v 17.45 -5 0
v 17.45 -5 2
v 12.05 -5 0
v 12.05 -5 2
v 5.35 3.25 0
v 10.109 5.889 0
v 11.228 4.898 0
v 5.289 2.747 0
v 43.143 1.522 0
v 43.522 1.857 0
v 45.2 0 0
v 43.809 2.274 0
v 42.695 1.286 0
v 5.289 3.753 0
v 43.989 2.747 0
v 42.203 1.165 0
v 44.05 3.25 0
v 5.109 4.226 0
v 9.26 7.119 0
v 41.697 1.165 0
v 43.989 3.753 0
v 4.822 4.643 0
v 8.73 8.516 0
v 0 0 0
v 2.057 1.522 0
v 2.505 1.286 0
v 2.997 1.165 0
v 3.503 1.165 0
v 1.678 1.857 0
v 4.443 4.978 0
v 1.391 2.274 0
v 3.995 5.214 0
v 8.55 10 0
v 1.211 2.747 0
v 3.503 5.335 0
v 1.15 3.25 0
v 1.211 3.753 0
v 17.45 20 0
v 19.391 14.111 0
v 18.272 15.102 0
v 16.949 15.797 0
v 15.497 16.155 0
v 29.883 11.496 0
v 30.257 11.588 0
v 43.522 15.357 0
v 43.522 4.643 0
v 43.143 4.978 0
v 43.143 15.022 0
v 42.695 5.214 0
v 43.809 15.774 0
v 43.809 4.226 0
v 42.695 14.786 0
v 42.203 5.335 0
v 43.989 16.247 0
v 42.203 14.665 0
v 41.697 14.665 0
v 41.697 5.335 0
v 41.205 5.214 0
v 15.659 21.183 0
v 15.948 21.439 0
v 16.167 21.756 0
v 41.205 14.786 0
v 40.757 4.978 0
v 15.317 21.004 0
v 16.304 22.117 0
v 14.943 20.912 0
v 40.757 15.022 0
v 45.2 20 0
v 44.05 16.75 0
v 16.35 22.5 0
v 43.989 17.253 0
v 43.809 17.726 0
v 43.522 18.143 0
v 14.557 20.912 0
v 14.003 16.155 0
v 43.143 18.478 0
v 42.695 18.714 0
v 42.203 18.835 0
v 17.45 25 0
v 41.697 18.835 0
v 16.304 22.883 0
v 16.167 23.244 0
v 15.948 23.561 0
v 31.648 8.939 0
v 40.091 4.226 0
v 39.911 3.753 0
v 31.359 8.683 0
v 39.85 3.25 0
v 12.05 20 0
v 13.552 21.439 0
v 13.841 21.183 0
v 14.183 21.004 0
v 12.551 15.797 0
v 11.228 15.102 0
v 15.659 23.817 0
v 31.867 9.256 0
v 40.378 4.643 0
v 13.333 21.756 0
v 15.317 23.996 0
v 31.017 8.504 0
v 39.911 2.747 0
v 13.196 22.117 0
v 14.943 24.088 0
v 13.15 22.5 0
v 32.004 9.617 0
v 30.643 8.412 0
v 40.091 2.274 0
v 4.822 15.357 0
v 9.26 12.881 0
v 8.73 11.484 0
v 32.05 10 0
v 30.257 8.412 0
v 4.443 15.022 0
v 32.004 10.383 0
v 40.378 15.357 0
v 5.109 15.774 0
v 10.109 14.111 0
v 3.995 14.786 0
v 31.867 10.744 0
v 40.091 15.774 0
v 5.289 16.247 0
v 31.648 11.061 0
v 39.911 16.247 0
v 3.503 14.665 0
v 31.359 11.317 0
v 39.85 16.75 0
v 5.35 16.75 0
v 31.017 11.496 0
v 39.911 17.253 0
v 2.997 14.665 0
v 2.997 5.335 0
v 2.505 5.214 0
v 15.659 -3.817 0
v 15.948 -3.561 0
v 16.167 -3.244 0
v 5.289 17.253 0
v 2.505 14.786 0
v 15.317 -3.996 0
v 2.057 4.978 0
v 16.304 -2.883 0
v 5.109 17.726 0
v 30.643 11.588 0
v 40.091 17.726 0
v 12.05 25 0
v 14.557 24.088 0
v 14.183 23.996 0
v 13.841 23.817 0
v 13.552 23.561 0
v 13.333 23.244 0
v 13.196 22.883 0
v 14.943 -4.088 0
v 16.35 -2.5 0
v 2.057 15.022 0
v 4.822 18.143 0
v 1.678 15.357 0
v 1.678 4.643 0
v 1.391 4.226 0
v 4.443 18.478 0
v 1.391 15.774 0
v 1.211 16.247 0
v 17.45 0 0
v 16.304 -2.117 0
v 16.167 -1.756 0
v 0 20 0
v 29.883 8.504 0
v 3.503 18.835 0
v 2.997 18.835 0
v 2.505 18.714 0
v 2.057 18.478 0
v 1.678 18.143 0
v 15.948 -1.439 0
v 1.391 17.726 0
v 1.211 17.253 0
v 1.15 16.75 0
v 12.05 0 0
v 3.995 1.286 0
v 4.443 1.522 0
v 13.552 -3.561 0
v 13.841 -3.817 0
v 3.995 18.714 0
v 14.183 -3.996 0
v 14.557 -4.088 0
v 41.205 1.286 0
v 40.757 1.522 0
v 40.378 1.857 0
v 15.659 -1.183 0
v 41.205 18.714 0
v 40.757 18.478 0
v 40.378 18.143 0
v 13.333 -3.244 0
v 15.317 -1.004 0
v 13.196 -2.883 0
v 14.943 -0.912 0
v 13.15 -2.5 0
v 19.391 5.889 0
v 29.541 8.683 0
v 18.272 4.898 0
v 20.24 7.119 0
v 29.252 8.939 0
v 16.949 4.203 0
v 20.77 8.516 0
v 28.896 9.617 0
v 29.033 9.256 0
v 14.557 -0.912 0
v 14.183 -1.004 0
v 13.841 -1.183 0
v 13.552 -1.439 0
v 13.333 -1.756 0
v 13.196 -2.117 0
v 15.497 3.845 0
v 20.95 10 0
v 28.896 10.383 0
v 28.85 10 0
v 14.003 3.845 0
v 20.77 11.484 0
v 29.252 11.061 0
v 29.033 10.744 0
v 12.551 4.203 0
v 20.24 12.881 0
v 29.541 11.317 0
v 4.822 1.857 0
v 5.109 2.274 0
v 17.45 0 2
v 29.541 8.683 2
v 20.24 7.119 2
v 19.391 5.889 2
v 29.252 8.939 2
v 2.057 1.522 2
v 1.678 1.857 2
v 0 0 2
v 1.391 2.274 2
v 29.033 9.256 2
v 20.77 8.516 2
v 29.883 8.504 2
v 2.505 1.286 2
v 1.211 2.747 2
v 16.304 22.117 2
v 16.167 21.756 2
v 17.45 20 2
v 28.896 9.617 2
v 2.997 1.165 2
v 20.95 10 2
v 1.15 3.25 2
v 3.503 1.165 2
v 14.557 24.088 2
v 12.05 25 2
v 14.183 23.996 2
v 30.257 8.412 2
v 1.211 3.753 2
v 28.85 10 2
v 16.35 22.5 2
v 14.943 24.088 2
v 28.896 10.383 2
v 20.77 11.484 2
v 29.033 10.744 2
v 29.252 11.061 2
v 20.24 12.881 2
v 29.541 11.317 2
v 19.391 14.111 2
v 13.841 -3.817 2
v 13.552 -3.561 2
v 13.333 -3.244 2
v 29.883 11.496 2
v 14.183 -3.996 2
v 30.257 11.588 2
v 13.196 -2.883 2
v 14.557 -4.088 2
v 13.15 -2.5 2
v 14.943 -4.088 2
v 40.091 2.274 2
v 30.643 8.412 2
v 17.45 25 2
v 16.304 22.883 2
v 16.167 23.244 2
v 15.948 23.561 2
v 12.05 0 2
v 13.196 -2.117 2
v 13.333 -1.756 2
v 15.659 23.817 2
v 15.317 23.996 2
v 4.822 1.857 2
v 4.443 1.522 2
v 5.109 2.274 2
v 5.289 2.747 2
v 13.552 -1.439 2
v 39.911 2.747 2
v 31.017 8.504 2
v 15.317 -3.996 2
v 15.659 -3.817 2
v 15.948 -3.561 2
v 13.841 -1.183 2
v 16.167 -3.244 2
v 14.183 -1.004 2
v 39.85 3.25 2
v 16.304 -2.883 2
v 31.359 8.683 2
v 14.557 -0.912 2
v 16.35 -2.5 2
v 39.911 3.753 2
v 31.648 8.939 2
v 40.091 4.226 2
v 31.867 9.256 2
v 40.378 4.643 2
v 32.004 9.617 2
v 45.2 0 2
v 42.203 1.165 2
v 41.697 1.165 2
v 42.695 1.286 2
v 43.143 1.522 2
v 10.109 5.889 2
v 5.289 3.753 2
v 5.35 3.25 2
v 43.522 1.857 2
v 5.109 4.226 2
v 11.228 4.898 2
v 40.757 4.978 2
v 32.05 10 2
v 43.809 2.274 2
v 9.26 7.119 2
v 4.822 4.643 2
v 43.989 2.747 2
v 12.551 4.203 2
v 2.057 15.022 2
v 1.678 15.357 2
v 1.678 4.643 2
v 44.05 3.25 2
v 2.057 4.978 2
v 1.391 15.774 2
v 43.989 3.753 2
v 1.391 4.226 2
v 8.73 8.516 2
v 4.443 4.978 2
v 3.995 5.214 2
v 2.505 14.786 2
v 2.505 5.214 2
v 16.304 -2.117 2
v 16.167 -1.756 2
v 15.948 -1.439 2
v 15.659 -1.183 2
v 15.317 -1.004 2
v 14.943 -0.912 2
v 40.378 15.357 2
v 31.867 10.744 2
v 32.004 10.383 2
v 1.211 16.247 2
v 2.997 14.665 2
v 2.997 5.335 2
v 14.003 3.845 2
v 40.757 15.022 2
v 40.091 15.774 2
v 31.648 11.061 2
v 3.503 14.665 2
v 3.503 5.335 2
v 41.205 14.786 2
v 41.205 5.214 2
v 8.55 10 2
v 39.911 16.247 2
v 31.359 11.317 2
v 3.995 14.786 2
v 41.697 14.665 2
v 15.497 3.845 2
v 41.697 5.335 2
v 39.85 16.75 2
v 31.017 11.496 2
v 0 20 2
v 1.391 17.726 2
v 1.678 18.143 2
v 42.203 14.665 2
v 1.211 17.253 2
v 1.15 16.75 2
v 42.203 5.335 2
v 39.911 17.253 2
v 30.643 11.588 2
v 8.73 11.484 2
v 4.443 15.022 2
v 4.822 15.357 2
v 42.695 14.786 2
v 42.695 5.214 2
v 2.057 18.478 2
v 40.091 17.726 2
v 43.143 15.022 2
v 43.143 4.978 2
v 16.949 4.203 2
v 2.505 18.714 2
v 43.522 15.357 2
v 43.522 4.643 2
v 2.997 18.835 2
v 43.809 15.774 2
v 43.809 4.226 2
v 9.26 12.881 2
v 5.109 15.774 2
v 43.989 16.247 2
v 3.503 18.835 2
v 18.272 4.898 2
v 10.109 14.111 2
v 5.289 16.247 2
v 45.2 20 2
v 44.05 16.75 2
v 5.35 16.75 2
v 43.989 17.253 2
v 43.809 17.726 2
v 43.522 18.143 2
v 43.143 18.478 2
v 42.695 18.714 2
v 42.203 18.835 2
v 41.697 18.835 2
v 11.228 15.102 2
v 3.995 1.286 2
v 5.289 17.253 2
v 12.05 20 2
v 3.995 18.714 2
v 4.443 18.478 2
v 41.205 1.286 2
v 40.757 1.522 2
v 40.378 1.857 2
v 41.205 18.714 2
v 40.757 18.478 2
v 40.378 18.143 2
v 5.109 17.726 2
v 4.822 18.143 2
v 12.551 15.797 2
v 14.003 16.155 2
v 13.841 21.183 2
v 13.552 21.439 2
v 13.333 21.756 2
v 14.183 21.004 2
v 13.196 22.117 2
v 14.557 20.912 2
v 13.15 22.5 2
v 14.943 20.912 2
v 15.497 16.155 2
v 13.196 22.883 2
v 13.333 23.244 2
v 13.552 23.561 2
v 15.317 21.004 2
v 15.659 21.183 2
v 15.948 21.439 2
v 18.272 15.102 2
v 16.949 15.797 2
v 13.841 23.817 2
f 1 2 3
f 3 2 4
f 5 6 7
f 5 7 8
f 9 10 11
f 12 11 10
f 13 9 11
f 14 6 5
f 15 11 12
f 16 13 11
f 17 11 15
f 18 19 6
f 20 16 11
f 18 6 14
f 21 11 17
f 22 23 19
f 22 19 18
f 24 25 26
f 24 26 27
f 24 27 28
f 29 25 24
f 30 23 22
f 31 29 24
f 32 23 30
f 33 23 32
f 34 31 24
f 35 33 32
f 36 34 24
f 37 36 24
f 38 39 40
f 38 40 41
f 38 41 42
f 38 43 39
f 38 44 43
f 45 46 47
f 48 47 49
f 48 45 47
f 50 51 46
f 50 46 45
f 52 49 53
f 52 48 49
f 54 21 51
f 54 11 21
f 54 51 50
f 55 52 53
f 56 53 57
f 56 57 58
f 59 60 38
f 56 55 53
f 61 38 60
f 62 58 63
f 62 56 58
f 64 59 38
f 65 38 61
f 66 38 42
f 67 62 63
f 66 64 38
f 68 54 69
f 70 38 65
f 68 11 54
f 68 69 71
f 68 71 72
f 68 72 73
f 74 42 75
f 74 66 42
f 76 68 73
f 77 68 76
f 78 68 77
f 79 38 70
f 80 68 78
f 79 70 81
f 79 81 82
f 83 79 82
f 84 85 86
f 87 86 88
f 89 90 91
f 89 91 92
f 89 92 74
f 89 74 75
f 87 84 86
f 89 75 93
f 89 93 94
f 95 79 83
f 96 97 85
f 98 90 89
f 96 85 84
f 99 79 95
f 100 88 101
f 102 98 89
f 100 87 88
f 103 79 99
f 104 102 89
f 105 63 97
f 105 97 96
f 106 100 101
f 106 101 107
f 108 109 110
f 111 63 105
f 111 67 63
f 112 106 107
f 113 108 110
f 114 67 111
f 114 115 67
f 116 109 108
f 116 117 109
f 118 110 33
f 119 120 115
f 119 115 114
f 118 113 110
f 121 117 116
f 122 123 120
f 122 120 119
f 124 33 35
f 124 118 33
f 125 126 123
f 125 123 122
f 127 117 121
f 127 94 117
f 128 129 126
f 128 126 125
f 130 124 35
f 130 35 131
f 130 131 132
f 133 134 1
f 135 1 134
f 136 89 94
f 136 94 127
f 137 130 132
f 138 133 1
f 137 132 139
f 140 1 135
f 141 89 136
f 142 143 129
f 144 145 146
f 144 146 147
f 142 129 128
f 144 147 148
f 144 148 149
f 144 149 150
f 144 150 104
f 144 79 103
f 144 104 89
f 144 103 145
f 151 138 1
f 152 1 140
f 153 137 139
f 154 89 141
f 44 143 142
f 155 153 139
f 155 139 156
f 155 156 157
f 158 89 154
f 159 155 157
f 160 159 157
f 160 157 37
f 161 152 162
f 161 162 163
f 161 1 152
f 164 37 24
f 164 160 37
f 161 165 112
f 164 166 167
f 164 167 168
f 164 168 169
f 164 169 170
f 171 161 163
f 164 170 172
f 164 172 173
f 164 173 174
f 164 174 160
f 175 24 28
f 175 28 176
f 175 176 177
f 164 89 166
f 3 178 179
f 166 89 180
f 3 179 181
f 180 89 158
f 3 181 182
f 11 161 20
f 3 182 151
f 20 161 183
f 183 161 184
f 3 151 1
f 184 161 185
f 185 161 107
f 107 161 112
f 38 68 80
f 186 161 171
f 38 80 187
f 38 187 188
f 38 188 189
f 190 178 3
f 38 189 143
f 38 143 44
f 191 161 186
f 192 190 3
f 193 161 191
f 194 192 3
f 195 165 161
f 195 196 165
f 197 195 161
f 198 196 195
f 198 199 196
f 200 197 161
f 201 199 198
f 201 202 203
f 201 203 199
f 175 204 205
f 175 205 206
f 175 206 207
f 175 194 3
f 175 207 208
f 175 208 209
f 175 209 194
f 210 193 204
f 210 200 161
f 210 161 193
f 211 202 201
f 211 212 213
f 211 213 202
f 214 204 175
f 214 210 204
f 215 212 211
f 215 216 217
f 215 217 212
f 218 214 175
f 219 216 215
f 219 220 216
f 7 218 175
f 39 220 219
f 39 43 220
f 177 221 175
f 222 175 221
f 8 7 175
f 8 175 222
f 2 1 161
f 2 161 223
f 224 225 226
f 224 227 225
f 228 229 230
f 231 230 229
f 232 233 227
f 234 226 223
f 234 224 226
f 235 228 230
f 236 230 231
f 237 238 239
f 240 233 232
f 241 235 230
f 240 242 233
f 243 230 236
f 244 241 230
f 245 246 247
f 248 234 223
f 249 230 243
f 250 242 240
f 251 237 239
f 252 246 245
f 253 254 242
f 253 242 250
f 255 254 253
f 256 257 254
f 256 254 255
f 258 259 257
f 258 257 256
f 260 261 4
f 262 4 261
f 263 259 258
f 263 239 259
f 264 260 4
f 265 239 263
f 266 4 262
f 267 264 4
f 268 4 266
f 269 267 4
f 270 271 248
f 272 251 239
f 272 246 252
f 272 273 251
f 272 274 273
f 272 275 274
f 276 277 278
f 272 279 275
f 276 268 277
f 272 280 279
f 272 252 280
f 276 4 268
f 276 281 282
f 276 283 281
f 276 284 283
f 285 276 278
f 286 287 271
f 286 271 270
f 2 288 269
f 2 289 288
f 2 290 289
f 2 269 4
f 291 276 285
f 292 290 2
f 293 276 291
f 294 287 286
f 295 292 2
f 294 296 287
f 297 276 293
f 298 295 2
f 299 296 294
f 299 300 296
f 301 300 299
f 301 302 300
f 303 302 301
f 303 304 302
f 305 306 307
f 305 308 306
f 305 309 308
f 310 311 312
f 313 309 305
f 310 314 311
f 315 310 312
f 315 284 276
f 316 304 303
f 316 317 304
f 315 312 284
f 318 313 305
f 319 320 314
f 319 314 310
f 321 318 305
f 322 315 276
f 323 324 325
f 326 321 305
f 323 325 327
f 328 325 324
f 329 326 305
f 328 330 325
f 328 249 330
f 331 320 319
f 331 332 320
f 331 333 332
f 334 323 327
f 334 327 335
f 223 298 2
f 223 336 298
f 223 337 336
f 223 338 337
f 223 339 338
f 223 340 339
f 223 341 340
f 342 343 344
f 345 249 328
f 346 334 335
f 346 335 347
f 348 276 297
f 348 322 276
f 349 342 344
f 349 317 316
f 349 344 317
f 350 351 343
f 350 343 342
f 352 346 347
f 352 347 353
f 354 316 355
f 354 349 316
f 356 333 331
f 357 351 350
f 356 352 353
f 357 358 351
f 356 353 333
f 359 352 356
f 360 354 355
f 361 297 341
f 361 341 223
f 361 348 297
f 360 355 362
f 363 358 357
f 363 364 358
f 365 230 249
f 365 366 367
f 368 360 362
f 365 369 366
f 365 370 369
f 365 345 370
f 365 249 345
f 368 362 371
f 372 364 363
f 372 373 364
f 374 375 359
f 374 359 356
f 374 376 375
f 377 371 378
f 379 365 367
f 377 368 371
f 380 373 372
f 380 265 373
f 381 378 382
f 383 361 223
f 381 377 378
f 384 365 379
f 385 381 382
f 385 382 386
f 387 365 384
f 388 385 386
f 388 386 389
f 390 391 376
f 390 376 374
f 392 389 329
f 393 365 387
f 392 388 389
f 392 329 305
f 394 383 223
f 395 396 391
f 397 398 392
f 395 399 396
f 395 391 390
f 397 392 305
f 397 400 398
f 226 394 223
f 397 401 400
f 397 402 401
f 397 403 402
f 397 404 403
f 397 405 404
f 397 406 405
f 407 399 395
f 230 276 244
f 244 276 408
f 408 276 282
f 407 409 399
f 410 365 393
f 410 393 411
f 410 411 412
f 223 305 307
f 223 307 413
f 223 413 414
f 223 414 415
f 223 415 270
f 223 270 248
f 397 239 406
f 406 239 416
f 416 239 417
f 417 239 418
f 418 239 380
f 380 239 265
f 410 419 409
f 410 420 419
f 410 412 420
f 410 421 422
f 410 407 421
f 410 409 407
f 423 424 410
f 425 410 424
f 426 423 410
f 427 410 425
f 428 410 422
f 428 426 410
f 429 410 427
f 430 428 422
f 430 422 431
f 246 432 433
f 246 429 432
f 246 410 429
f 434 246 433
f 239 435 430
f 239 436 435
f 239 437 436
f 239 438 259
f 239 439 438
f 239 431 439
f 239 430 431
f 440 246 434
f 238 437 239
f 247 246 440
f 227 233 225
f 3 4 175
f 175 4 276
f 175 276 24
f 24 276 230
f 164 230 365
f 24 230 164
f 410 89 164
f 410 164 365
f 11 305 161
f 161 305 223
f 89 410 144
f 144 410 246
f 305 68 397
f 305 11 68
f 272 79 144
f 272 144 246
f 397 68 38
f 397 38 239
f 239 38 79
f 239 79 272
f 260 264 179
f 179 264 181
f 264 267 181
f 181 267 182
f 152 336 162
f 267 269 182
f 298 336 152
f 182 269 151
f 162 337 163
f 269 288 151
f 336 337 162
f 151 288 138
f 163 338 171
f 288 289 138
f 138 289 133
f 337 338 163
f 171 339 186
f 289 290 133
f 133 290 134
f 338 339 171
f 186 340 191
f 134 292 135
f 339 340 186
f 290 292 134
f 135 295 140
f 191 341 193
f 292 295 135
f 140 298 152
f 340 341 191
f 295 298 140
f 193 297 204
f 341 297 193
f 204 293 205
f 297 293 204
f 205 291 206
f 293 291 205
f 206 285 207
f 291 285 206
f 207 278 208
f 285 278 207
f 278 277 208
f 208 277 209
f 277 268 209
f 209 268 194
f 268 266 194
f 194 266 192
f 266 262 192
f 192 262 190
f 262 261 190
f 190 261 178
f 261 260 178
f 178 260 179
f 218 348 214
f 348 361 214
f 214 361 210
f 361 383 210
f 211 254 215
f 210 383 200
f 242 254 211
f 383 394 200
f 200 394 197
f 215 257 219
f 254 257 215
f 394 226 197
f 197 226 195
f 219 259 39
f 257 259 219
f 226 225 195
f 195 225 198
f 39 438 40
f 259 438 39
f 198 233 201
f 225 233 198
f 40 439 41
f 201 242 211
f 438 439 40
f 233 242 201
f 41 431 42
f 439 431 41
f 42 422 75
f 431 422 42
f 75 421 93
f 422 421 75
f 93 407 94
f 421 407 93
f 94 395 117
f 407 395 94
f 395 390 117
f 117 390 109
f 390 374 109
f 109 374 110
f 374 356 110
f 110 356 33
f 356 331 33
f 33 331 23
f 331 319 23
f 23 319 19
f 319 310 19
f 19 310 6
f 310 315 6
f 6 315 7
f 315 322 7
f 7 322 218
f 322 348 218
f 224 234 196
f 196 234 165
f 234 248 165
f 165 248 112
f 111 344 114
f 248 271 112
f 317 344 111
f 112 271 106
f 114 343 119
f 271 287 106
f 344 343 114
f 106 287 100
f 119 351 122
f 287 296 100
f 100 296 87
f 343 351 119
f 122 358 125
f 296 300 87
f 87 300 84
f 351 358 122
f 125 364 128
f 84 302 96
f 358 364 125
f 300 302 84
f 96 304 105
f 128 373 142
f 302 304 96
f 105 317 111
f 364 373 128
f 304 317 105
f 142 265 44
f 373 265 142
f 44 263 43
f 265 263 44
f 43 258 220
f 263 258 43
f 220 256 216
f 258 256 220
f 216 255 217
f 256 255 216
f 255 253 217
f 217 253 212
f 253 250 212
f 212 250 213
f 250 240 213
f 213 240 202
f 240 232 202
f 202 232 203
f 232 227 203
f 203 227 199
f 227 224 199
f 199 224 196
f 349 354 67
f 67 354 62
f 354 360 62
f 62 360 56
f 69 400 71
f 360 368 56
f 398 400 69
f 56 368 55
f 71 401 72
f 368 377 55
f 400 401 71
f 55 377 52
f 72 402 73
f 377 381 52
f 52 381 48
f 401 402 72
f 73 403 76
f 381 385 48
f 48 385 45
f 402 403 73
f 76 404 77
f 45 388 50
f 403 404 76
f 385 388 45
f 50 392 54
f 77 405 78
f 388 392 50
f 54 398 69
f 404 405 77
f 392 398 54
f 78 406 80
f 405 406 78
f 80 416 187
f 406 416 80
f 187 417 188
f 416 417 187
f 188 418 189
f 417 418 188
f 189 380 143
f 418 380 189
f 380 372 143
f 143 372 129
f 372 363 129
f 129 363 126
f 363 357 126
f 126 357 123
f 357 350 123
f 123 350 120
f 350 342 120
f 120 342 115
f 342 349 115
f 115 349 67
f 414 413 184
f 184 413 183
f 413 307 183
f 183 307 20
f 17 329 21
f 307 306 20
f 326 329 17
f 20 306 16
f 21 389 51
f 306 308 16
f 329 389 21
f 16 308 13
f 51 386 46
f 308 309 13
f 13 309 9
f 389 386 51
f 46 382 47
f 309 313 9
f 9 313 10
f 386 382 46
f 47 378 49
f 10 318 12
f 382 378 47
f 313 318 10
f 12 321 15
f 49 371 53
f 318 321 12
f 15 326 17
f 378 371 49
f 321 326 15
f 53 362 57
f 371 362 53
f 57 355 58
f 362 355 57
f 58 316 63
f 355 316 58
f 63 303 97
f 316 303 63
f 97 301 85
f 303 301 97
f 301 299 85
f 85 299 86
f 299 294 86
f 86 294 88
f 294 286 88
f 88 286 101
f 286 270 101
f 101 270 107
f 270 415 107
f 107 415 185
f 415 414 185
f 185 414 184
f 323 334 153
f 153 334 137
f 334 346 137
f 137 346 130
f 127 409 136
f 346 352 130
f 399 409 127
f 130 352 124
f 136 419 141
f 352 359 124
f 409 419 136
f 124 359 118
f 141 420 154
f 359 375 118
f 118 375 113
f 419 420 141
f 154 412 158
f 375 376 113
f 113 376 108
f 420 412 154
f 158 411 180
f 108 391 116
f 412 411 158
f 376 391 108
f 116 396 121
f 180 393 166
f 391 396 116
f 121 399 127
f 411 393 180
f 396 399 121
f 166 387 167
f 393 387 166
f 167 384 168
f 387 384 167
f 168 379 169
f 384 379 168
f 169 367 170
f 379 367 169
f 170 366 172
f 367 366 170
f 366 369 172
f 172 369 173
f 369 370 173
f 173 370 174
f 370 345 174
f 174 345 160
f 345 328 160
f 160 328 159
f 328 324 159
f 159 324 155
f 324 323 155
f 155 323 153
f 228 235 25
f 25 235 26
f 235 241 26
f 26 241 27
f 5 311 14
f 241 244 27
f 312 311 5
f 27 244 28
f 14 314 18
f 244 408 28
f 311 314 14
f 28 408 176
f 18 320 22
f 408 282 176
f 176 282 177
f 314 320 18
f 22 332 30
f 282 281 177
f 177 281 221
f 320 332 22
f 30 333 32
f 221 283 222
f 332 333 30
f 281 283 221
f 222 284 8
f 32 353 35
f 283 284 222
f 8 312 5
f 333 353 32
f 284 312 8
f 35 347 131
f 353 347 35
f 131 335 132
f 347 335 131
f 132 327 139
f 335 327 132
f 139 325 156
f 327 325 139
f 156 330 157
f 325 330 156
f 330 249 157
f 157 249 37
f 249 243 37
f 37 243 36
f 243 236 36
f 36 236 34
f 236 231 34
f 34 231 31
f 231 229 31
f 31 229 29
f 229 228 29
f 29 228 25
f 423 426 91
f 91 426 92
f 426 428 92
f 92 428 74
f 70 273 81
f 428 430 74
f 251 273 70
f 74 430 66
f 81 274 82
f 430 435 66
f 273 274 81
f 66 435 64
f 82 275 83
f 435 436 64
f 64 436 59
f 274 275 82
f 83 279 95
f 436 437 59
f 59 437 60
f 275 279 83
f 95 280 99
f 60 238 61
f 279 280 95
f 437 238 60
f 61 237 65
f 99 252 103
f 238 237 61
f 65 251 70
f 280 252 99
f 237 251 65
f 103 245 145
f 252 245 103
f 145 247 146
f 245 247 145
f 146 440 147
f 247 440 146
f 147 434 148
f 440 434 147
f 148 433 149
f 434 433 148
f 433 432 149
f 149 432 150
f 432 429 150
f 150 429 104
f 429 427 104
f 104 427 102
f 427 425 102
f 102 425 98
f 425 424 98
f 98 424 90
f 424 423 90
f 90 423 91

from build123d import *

# Parameters (mm, degrees)
CYLINDER006_R     = 1.6
CYLINDER006_DEPTH = 10
CYLINDER007_R     = 1.6
CYLINDER007_DEPTH = 10
CYLINDER004_R     = 6.2
CYLINDER004_DEPTH = 10
BOX002_W          = 5.4
BOX002_H          = 5
BOX002_DEPTH      = 2
CYLINDER005_R     = 1.6
CYLINDER005_DEPTH = 10
CYLINDER001_R     = 2.1
CYLINDER001_DEPTH = 10
CYLINDER_R        = 2.1
CYLINDER_DEPTH    = 10
CYLINDER002_R     = 2.1
CYLINDER002_DEPTH = 10
CYLINDER003_R     = 2.1
CYLINDER003_DEPTH = 10
BOX_W             = 45.2
BOX_H             = 20
BOX_DEPTH         = 2
BOX001_W          = 5.4
BOX001_H          = 5
BOX001_DEPTH      = 2


with BuildPart() as cylinder006:
    # Cylinder006 → Cylinder006 (new body)
    with BuildSketch(Plane(origin=(14.75, 22.5, -4), x_dir=(1, 0, 0), z_dir=(0, 0, 1))):
        Circle(CYLINDER006_R)
    extrude(amount=CYLINDER006_DEPTH)


with BuildPart() as cylinder007:
    # Cylinder007 → Cylinder007 (new body)
    with BuildSketch(Plane(origin=(14.75, -2.5, -4), x_dir=(1, 0, 0), z_dir=(0, 0, 1))):
        Circle(CYLINDER007_R)
    extrude(amount=CYLINDER007_DEPTH)


with BuildPart() as cylinder004:
    # Cylinder004 → Cylinder004 (new body)
    with BuildSketch(Plane(origin=(14.75, 10, -4), x_dir=(1, 0, 0), z_dir=(0, 0, 1))):
        Circle(CYLINDER004_R)
    extrude(amount=CYLINDER004_DEPTH)


with BuildPart() as cube001:
    # Box002 → Box002 (new body)
    with BuildSketch(Plane(origin=(12.05, 20, 0), x_dir=(1, 0, 0), z_dir=(0, 0, 1))):
        with Locations((2.7, 2.5)):
            Rectangle(BOX002_W, BOX002_H)
    extrude(amount=BOX002_DEPTH)


with BuildPart() as cylinder005:
    # Cylinder005 → Cylinder005 (new body)
    with BuildSketch(Plane(origin=(30.45, 10, -5), x_dir=(1, 0, 0), z_dir=(0, 0, 1))):
        Circle(CYLINDER005_R)
    extrude(amount=CYLINDER005_DEPTH)


with BuildPart() as cylinder001:
    # Cylinder001 → Cylinder001 (new body)
    with BuildSketch(Plane(origin=(41.95, 3.25, -5), x_dir=(1, 0, 0), z_dir=(0, 0, 1))):
        Circle(CYLINDER001_R)
    extrude(amount=CYLINDER001_DEPTH)


with BuildPart() as cylinder:
    # Cylinder → Cylinder (new body)
    with BuildSketch(Plane(origin=(41.95, 16.75, -5), x_dir=(1, 0, 0), z_dir=(0, 0, 1))):
        Circle(CYLINDER_R)
    extrude(amount=CYLINDER_DEPTH)


with BuildPart() as cylinder002:
    # Cylinder002 → Cylinder002 (new body)
    with BuildSketch(Plane(origin=(3.25, 16.75, -5), x_dir=(1, 0, 0), z_dir=(0, 0, 1))):
        Circle(CYLINDER002_R)
    extrude(amount=CYLINDER002_DEPTH)


with BuildPart() as cylinder003:
    # Cylinder003 → Cylinder003 (new body)
    with BuildSketch(Plane(origin=(3.25, 3.25, -5), x_dir=(1, 0, 0), z_dir=(0, 0, 1))):
        Circle(CYLINDER003_R)
    extrude(amount=CYLINDER003_DEPTH)


with BuildPart() as fusion:
    # Box → Box (new body)
    with BuildSketch(Plane.XY):
        with Locations((22.6, 10)):
            Rectangle(BOX_W, BOX_H)
    extrude(amount=BOX_DEPTH)

    # Cut: cut Cylinder003
    add(cylinder003.part, mode=Mode.SUBTRACT)

    # Cut001: cut Cylinder002
    add(cylinder002.part, mode=Mode.SUBTRACT)

    # Cut002: cut Cylinder
    add(cylinder.part, mode=Mode.SUBTRACT)

    # Cut003: cut Cylinder001
    add(cylinder001.part, mode=Mode.SUBTRACT)

    # Cut004: cut Cylinder004
    add(cylinder004.part, mode=Mode.SUBTRACT)

    # Cut005: cut Cylinder005
    add(cylinder005.part, mode=Mode.SUBTRACT)

    # Fusion: union Cube001
    add(cube001.part)


with BuildPart() as cut008:
    # Box001 → Box001 (new body)
    with BuildSketch(Plane(origin=(12.05, -5, 0), x_dir=(1, 0, 0), z_dir=(0, 0, 1))):
        with Locations((2.7, 2.5)):
            Rectangle(BOX001_W, BOX001_H)
    extrude(amount=BOX001_DEPTH)

    # Fusion001: union Fusion
    add(fusion.part)

    # Cut006: cut Cylinder004
    add(cylinder004.part, mode=Mode.SUBTRACT)

    # Cut007: cut Cylinder007
    add(cylinder007.part, mode=Mode.SUBTRACT)

    # Cut008: cut Cylinder006
    add(cylinder006.part, mode=Mode.SUBTRACT)


solid = cut008.part
